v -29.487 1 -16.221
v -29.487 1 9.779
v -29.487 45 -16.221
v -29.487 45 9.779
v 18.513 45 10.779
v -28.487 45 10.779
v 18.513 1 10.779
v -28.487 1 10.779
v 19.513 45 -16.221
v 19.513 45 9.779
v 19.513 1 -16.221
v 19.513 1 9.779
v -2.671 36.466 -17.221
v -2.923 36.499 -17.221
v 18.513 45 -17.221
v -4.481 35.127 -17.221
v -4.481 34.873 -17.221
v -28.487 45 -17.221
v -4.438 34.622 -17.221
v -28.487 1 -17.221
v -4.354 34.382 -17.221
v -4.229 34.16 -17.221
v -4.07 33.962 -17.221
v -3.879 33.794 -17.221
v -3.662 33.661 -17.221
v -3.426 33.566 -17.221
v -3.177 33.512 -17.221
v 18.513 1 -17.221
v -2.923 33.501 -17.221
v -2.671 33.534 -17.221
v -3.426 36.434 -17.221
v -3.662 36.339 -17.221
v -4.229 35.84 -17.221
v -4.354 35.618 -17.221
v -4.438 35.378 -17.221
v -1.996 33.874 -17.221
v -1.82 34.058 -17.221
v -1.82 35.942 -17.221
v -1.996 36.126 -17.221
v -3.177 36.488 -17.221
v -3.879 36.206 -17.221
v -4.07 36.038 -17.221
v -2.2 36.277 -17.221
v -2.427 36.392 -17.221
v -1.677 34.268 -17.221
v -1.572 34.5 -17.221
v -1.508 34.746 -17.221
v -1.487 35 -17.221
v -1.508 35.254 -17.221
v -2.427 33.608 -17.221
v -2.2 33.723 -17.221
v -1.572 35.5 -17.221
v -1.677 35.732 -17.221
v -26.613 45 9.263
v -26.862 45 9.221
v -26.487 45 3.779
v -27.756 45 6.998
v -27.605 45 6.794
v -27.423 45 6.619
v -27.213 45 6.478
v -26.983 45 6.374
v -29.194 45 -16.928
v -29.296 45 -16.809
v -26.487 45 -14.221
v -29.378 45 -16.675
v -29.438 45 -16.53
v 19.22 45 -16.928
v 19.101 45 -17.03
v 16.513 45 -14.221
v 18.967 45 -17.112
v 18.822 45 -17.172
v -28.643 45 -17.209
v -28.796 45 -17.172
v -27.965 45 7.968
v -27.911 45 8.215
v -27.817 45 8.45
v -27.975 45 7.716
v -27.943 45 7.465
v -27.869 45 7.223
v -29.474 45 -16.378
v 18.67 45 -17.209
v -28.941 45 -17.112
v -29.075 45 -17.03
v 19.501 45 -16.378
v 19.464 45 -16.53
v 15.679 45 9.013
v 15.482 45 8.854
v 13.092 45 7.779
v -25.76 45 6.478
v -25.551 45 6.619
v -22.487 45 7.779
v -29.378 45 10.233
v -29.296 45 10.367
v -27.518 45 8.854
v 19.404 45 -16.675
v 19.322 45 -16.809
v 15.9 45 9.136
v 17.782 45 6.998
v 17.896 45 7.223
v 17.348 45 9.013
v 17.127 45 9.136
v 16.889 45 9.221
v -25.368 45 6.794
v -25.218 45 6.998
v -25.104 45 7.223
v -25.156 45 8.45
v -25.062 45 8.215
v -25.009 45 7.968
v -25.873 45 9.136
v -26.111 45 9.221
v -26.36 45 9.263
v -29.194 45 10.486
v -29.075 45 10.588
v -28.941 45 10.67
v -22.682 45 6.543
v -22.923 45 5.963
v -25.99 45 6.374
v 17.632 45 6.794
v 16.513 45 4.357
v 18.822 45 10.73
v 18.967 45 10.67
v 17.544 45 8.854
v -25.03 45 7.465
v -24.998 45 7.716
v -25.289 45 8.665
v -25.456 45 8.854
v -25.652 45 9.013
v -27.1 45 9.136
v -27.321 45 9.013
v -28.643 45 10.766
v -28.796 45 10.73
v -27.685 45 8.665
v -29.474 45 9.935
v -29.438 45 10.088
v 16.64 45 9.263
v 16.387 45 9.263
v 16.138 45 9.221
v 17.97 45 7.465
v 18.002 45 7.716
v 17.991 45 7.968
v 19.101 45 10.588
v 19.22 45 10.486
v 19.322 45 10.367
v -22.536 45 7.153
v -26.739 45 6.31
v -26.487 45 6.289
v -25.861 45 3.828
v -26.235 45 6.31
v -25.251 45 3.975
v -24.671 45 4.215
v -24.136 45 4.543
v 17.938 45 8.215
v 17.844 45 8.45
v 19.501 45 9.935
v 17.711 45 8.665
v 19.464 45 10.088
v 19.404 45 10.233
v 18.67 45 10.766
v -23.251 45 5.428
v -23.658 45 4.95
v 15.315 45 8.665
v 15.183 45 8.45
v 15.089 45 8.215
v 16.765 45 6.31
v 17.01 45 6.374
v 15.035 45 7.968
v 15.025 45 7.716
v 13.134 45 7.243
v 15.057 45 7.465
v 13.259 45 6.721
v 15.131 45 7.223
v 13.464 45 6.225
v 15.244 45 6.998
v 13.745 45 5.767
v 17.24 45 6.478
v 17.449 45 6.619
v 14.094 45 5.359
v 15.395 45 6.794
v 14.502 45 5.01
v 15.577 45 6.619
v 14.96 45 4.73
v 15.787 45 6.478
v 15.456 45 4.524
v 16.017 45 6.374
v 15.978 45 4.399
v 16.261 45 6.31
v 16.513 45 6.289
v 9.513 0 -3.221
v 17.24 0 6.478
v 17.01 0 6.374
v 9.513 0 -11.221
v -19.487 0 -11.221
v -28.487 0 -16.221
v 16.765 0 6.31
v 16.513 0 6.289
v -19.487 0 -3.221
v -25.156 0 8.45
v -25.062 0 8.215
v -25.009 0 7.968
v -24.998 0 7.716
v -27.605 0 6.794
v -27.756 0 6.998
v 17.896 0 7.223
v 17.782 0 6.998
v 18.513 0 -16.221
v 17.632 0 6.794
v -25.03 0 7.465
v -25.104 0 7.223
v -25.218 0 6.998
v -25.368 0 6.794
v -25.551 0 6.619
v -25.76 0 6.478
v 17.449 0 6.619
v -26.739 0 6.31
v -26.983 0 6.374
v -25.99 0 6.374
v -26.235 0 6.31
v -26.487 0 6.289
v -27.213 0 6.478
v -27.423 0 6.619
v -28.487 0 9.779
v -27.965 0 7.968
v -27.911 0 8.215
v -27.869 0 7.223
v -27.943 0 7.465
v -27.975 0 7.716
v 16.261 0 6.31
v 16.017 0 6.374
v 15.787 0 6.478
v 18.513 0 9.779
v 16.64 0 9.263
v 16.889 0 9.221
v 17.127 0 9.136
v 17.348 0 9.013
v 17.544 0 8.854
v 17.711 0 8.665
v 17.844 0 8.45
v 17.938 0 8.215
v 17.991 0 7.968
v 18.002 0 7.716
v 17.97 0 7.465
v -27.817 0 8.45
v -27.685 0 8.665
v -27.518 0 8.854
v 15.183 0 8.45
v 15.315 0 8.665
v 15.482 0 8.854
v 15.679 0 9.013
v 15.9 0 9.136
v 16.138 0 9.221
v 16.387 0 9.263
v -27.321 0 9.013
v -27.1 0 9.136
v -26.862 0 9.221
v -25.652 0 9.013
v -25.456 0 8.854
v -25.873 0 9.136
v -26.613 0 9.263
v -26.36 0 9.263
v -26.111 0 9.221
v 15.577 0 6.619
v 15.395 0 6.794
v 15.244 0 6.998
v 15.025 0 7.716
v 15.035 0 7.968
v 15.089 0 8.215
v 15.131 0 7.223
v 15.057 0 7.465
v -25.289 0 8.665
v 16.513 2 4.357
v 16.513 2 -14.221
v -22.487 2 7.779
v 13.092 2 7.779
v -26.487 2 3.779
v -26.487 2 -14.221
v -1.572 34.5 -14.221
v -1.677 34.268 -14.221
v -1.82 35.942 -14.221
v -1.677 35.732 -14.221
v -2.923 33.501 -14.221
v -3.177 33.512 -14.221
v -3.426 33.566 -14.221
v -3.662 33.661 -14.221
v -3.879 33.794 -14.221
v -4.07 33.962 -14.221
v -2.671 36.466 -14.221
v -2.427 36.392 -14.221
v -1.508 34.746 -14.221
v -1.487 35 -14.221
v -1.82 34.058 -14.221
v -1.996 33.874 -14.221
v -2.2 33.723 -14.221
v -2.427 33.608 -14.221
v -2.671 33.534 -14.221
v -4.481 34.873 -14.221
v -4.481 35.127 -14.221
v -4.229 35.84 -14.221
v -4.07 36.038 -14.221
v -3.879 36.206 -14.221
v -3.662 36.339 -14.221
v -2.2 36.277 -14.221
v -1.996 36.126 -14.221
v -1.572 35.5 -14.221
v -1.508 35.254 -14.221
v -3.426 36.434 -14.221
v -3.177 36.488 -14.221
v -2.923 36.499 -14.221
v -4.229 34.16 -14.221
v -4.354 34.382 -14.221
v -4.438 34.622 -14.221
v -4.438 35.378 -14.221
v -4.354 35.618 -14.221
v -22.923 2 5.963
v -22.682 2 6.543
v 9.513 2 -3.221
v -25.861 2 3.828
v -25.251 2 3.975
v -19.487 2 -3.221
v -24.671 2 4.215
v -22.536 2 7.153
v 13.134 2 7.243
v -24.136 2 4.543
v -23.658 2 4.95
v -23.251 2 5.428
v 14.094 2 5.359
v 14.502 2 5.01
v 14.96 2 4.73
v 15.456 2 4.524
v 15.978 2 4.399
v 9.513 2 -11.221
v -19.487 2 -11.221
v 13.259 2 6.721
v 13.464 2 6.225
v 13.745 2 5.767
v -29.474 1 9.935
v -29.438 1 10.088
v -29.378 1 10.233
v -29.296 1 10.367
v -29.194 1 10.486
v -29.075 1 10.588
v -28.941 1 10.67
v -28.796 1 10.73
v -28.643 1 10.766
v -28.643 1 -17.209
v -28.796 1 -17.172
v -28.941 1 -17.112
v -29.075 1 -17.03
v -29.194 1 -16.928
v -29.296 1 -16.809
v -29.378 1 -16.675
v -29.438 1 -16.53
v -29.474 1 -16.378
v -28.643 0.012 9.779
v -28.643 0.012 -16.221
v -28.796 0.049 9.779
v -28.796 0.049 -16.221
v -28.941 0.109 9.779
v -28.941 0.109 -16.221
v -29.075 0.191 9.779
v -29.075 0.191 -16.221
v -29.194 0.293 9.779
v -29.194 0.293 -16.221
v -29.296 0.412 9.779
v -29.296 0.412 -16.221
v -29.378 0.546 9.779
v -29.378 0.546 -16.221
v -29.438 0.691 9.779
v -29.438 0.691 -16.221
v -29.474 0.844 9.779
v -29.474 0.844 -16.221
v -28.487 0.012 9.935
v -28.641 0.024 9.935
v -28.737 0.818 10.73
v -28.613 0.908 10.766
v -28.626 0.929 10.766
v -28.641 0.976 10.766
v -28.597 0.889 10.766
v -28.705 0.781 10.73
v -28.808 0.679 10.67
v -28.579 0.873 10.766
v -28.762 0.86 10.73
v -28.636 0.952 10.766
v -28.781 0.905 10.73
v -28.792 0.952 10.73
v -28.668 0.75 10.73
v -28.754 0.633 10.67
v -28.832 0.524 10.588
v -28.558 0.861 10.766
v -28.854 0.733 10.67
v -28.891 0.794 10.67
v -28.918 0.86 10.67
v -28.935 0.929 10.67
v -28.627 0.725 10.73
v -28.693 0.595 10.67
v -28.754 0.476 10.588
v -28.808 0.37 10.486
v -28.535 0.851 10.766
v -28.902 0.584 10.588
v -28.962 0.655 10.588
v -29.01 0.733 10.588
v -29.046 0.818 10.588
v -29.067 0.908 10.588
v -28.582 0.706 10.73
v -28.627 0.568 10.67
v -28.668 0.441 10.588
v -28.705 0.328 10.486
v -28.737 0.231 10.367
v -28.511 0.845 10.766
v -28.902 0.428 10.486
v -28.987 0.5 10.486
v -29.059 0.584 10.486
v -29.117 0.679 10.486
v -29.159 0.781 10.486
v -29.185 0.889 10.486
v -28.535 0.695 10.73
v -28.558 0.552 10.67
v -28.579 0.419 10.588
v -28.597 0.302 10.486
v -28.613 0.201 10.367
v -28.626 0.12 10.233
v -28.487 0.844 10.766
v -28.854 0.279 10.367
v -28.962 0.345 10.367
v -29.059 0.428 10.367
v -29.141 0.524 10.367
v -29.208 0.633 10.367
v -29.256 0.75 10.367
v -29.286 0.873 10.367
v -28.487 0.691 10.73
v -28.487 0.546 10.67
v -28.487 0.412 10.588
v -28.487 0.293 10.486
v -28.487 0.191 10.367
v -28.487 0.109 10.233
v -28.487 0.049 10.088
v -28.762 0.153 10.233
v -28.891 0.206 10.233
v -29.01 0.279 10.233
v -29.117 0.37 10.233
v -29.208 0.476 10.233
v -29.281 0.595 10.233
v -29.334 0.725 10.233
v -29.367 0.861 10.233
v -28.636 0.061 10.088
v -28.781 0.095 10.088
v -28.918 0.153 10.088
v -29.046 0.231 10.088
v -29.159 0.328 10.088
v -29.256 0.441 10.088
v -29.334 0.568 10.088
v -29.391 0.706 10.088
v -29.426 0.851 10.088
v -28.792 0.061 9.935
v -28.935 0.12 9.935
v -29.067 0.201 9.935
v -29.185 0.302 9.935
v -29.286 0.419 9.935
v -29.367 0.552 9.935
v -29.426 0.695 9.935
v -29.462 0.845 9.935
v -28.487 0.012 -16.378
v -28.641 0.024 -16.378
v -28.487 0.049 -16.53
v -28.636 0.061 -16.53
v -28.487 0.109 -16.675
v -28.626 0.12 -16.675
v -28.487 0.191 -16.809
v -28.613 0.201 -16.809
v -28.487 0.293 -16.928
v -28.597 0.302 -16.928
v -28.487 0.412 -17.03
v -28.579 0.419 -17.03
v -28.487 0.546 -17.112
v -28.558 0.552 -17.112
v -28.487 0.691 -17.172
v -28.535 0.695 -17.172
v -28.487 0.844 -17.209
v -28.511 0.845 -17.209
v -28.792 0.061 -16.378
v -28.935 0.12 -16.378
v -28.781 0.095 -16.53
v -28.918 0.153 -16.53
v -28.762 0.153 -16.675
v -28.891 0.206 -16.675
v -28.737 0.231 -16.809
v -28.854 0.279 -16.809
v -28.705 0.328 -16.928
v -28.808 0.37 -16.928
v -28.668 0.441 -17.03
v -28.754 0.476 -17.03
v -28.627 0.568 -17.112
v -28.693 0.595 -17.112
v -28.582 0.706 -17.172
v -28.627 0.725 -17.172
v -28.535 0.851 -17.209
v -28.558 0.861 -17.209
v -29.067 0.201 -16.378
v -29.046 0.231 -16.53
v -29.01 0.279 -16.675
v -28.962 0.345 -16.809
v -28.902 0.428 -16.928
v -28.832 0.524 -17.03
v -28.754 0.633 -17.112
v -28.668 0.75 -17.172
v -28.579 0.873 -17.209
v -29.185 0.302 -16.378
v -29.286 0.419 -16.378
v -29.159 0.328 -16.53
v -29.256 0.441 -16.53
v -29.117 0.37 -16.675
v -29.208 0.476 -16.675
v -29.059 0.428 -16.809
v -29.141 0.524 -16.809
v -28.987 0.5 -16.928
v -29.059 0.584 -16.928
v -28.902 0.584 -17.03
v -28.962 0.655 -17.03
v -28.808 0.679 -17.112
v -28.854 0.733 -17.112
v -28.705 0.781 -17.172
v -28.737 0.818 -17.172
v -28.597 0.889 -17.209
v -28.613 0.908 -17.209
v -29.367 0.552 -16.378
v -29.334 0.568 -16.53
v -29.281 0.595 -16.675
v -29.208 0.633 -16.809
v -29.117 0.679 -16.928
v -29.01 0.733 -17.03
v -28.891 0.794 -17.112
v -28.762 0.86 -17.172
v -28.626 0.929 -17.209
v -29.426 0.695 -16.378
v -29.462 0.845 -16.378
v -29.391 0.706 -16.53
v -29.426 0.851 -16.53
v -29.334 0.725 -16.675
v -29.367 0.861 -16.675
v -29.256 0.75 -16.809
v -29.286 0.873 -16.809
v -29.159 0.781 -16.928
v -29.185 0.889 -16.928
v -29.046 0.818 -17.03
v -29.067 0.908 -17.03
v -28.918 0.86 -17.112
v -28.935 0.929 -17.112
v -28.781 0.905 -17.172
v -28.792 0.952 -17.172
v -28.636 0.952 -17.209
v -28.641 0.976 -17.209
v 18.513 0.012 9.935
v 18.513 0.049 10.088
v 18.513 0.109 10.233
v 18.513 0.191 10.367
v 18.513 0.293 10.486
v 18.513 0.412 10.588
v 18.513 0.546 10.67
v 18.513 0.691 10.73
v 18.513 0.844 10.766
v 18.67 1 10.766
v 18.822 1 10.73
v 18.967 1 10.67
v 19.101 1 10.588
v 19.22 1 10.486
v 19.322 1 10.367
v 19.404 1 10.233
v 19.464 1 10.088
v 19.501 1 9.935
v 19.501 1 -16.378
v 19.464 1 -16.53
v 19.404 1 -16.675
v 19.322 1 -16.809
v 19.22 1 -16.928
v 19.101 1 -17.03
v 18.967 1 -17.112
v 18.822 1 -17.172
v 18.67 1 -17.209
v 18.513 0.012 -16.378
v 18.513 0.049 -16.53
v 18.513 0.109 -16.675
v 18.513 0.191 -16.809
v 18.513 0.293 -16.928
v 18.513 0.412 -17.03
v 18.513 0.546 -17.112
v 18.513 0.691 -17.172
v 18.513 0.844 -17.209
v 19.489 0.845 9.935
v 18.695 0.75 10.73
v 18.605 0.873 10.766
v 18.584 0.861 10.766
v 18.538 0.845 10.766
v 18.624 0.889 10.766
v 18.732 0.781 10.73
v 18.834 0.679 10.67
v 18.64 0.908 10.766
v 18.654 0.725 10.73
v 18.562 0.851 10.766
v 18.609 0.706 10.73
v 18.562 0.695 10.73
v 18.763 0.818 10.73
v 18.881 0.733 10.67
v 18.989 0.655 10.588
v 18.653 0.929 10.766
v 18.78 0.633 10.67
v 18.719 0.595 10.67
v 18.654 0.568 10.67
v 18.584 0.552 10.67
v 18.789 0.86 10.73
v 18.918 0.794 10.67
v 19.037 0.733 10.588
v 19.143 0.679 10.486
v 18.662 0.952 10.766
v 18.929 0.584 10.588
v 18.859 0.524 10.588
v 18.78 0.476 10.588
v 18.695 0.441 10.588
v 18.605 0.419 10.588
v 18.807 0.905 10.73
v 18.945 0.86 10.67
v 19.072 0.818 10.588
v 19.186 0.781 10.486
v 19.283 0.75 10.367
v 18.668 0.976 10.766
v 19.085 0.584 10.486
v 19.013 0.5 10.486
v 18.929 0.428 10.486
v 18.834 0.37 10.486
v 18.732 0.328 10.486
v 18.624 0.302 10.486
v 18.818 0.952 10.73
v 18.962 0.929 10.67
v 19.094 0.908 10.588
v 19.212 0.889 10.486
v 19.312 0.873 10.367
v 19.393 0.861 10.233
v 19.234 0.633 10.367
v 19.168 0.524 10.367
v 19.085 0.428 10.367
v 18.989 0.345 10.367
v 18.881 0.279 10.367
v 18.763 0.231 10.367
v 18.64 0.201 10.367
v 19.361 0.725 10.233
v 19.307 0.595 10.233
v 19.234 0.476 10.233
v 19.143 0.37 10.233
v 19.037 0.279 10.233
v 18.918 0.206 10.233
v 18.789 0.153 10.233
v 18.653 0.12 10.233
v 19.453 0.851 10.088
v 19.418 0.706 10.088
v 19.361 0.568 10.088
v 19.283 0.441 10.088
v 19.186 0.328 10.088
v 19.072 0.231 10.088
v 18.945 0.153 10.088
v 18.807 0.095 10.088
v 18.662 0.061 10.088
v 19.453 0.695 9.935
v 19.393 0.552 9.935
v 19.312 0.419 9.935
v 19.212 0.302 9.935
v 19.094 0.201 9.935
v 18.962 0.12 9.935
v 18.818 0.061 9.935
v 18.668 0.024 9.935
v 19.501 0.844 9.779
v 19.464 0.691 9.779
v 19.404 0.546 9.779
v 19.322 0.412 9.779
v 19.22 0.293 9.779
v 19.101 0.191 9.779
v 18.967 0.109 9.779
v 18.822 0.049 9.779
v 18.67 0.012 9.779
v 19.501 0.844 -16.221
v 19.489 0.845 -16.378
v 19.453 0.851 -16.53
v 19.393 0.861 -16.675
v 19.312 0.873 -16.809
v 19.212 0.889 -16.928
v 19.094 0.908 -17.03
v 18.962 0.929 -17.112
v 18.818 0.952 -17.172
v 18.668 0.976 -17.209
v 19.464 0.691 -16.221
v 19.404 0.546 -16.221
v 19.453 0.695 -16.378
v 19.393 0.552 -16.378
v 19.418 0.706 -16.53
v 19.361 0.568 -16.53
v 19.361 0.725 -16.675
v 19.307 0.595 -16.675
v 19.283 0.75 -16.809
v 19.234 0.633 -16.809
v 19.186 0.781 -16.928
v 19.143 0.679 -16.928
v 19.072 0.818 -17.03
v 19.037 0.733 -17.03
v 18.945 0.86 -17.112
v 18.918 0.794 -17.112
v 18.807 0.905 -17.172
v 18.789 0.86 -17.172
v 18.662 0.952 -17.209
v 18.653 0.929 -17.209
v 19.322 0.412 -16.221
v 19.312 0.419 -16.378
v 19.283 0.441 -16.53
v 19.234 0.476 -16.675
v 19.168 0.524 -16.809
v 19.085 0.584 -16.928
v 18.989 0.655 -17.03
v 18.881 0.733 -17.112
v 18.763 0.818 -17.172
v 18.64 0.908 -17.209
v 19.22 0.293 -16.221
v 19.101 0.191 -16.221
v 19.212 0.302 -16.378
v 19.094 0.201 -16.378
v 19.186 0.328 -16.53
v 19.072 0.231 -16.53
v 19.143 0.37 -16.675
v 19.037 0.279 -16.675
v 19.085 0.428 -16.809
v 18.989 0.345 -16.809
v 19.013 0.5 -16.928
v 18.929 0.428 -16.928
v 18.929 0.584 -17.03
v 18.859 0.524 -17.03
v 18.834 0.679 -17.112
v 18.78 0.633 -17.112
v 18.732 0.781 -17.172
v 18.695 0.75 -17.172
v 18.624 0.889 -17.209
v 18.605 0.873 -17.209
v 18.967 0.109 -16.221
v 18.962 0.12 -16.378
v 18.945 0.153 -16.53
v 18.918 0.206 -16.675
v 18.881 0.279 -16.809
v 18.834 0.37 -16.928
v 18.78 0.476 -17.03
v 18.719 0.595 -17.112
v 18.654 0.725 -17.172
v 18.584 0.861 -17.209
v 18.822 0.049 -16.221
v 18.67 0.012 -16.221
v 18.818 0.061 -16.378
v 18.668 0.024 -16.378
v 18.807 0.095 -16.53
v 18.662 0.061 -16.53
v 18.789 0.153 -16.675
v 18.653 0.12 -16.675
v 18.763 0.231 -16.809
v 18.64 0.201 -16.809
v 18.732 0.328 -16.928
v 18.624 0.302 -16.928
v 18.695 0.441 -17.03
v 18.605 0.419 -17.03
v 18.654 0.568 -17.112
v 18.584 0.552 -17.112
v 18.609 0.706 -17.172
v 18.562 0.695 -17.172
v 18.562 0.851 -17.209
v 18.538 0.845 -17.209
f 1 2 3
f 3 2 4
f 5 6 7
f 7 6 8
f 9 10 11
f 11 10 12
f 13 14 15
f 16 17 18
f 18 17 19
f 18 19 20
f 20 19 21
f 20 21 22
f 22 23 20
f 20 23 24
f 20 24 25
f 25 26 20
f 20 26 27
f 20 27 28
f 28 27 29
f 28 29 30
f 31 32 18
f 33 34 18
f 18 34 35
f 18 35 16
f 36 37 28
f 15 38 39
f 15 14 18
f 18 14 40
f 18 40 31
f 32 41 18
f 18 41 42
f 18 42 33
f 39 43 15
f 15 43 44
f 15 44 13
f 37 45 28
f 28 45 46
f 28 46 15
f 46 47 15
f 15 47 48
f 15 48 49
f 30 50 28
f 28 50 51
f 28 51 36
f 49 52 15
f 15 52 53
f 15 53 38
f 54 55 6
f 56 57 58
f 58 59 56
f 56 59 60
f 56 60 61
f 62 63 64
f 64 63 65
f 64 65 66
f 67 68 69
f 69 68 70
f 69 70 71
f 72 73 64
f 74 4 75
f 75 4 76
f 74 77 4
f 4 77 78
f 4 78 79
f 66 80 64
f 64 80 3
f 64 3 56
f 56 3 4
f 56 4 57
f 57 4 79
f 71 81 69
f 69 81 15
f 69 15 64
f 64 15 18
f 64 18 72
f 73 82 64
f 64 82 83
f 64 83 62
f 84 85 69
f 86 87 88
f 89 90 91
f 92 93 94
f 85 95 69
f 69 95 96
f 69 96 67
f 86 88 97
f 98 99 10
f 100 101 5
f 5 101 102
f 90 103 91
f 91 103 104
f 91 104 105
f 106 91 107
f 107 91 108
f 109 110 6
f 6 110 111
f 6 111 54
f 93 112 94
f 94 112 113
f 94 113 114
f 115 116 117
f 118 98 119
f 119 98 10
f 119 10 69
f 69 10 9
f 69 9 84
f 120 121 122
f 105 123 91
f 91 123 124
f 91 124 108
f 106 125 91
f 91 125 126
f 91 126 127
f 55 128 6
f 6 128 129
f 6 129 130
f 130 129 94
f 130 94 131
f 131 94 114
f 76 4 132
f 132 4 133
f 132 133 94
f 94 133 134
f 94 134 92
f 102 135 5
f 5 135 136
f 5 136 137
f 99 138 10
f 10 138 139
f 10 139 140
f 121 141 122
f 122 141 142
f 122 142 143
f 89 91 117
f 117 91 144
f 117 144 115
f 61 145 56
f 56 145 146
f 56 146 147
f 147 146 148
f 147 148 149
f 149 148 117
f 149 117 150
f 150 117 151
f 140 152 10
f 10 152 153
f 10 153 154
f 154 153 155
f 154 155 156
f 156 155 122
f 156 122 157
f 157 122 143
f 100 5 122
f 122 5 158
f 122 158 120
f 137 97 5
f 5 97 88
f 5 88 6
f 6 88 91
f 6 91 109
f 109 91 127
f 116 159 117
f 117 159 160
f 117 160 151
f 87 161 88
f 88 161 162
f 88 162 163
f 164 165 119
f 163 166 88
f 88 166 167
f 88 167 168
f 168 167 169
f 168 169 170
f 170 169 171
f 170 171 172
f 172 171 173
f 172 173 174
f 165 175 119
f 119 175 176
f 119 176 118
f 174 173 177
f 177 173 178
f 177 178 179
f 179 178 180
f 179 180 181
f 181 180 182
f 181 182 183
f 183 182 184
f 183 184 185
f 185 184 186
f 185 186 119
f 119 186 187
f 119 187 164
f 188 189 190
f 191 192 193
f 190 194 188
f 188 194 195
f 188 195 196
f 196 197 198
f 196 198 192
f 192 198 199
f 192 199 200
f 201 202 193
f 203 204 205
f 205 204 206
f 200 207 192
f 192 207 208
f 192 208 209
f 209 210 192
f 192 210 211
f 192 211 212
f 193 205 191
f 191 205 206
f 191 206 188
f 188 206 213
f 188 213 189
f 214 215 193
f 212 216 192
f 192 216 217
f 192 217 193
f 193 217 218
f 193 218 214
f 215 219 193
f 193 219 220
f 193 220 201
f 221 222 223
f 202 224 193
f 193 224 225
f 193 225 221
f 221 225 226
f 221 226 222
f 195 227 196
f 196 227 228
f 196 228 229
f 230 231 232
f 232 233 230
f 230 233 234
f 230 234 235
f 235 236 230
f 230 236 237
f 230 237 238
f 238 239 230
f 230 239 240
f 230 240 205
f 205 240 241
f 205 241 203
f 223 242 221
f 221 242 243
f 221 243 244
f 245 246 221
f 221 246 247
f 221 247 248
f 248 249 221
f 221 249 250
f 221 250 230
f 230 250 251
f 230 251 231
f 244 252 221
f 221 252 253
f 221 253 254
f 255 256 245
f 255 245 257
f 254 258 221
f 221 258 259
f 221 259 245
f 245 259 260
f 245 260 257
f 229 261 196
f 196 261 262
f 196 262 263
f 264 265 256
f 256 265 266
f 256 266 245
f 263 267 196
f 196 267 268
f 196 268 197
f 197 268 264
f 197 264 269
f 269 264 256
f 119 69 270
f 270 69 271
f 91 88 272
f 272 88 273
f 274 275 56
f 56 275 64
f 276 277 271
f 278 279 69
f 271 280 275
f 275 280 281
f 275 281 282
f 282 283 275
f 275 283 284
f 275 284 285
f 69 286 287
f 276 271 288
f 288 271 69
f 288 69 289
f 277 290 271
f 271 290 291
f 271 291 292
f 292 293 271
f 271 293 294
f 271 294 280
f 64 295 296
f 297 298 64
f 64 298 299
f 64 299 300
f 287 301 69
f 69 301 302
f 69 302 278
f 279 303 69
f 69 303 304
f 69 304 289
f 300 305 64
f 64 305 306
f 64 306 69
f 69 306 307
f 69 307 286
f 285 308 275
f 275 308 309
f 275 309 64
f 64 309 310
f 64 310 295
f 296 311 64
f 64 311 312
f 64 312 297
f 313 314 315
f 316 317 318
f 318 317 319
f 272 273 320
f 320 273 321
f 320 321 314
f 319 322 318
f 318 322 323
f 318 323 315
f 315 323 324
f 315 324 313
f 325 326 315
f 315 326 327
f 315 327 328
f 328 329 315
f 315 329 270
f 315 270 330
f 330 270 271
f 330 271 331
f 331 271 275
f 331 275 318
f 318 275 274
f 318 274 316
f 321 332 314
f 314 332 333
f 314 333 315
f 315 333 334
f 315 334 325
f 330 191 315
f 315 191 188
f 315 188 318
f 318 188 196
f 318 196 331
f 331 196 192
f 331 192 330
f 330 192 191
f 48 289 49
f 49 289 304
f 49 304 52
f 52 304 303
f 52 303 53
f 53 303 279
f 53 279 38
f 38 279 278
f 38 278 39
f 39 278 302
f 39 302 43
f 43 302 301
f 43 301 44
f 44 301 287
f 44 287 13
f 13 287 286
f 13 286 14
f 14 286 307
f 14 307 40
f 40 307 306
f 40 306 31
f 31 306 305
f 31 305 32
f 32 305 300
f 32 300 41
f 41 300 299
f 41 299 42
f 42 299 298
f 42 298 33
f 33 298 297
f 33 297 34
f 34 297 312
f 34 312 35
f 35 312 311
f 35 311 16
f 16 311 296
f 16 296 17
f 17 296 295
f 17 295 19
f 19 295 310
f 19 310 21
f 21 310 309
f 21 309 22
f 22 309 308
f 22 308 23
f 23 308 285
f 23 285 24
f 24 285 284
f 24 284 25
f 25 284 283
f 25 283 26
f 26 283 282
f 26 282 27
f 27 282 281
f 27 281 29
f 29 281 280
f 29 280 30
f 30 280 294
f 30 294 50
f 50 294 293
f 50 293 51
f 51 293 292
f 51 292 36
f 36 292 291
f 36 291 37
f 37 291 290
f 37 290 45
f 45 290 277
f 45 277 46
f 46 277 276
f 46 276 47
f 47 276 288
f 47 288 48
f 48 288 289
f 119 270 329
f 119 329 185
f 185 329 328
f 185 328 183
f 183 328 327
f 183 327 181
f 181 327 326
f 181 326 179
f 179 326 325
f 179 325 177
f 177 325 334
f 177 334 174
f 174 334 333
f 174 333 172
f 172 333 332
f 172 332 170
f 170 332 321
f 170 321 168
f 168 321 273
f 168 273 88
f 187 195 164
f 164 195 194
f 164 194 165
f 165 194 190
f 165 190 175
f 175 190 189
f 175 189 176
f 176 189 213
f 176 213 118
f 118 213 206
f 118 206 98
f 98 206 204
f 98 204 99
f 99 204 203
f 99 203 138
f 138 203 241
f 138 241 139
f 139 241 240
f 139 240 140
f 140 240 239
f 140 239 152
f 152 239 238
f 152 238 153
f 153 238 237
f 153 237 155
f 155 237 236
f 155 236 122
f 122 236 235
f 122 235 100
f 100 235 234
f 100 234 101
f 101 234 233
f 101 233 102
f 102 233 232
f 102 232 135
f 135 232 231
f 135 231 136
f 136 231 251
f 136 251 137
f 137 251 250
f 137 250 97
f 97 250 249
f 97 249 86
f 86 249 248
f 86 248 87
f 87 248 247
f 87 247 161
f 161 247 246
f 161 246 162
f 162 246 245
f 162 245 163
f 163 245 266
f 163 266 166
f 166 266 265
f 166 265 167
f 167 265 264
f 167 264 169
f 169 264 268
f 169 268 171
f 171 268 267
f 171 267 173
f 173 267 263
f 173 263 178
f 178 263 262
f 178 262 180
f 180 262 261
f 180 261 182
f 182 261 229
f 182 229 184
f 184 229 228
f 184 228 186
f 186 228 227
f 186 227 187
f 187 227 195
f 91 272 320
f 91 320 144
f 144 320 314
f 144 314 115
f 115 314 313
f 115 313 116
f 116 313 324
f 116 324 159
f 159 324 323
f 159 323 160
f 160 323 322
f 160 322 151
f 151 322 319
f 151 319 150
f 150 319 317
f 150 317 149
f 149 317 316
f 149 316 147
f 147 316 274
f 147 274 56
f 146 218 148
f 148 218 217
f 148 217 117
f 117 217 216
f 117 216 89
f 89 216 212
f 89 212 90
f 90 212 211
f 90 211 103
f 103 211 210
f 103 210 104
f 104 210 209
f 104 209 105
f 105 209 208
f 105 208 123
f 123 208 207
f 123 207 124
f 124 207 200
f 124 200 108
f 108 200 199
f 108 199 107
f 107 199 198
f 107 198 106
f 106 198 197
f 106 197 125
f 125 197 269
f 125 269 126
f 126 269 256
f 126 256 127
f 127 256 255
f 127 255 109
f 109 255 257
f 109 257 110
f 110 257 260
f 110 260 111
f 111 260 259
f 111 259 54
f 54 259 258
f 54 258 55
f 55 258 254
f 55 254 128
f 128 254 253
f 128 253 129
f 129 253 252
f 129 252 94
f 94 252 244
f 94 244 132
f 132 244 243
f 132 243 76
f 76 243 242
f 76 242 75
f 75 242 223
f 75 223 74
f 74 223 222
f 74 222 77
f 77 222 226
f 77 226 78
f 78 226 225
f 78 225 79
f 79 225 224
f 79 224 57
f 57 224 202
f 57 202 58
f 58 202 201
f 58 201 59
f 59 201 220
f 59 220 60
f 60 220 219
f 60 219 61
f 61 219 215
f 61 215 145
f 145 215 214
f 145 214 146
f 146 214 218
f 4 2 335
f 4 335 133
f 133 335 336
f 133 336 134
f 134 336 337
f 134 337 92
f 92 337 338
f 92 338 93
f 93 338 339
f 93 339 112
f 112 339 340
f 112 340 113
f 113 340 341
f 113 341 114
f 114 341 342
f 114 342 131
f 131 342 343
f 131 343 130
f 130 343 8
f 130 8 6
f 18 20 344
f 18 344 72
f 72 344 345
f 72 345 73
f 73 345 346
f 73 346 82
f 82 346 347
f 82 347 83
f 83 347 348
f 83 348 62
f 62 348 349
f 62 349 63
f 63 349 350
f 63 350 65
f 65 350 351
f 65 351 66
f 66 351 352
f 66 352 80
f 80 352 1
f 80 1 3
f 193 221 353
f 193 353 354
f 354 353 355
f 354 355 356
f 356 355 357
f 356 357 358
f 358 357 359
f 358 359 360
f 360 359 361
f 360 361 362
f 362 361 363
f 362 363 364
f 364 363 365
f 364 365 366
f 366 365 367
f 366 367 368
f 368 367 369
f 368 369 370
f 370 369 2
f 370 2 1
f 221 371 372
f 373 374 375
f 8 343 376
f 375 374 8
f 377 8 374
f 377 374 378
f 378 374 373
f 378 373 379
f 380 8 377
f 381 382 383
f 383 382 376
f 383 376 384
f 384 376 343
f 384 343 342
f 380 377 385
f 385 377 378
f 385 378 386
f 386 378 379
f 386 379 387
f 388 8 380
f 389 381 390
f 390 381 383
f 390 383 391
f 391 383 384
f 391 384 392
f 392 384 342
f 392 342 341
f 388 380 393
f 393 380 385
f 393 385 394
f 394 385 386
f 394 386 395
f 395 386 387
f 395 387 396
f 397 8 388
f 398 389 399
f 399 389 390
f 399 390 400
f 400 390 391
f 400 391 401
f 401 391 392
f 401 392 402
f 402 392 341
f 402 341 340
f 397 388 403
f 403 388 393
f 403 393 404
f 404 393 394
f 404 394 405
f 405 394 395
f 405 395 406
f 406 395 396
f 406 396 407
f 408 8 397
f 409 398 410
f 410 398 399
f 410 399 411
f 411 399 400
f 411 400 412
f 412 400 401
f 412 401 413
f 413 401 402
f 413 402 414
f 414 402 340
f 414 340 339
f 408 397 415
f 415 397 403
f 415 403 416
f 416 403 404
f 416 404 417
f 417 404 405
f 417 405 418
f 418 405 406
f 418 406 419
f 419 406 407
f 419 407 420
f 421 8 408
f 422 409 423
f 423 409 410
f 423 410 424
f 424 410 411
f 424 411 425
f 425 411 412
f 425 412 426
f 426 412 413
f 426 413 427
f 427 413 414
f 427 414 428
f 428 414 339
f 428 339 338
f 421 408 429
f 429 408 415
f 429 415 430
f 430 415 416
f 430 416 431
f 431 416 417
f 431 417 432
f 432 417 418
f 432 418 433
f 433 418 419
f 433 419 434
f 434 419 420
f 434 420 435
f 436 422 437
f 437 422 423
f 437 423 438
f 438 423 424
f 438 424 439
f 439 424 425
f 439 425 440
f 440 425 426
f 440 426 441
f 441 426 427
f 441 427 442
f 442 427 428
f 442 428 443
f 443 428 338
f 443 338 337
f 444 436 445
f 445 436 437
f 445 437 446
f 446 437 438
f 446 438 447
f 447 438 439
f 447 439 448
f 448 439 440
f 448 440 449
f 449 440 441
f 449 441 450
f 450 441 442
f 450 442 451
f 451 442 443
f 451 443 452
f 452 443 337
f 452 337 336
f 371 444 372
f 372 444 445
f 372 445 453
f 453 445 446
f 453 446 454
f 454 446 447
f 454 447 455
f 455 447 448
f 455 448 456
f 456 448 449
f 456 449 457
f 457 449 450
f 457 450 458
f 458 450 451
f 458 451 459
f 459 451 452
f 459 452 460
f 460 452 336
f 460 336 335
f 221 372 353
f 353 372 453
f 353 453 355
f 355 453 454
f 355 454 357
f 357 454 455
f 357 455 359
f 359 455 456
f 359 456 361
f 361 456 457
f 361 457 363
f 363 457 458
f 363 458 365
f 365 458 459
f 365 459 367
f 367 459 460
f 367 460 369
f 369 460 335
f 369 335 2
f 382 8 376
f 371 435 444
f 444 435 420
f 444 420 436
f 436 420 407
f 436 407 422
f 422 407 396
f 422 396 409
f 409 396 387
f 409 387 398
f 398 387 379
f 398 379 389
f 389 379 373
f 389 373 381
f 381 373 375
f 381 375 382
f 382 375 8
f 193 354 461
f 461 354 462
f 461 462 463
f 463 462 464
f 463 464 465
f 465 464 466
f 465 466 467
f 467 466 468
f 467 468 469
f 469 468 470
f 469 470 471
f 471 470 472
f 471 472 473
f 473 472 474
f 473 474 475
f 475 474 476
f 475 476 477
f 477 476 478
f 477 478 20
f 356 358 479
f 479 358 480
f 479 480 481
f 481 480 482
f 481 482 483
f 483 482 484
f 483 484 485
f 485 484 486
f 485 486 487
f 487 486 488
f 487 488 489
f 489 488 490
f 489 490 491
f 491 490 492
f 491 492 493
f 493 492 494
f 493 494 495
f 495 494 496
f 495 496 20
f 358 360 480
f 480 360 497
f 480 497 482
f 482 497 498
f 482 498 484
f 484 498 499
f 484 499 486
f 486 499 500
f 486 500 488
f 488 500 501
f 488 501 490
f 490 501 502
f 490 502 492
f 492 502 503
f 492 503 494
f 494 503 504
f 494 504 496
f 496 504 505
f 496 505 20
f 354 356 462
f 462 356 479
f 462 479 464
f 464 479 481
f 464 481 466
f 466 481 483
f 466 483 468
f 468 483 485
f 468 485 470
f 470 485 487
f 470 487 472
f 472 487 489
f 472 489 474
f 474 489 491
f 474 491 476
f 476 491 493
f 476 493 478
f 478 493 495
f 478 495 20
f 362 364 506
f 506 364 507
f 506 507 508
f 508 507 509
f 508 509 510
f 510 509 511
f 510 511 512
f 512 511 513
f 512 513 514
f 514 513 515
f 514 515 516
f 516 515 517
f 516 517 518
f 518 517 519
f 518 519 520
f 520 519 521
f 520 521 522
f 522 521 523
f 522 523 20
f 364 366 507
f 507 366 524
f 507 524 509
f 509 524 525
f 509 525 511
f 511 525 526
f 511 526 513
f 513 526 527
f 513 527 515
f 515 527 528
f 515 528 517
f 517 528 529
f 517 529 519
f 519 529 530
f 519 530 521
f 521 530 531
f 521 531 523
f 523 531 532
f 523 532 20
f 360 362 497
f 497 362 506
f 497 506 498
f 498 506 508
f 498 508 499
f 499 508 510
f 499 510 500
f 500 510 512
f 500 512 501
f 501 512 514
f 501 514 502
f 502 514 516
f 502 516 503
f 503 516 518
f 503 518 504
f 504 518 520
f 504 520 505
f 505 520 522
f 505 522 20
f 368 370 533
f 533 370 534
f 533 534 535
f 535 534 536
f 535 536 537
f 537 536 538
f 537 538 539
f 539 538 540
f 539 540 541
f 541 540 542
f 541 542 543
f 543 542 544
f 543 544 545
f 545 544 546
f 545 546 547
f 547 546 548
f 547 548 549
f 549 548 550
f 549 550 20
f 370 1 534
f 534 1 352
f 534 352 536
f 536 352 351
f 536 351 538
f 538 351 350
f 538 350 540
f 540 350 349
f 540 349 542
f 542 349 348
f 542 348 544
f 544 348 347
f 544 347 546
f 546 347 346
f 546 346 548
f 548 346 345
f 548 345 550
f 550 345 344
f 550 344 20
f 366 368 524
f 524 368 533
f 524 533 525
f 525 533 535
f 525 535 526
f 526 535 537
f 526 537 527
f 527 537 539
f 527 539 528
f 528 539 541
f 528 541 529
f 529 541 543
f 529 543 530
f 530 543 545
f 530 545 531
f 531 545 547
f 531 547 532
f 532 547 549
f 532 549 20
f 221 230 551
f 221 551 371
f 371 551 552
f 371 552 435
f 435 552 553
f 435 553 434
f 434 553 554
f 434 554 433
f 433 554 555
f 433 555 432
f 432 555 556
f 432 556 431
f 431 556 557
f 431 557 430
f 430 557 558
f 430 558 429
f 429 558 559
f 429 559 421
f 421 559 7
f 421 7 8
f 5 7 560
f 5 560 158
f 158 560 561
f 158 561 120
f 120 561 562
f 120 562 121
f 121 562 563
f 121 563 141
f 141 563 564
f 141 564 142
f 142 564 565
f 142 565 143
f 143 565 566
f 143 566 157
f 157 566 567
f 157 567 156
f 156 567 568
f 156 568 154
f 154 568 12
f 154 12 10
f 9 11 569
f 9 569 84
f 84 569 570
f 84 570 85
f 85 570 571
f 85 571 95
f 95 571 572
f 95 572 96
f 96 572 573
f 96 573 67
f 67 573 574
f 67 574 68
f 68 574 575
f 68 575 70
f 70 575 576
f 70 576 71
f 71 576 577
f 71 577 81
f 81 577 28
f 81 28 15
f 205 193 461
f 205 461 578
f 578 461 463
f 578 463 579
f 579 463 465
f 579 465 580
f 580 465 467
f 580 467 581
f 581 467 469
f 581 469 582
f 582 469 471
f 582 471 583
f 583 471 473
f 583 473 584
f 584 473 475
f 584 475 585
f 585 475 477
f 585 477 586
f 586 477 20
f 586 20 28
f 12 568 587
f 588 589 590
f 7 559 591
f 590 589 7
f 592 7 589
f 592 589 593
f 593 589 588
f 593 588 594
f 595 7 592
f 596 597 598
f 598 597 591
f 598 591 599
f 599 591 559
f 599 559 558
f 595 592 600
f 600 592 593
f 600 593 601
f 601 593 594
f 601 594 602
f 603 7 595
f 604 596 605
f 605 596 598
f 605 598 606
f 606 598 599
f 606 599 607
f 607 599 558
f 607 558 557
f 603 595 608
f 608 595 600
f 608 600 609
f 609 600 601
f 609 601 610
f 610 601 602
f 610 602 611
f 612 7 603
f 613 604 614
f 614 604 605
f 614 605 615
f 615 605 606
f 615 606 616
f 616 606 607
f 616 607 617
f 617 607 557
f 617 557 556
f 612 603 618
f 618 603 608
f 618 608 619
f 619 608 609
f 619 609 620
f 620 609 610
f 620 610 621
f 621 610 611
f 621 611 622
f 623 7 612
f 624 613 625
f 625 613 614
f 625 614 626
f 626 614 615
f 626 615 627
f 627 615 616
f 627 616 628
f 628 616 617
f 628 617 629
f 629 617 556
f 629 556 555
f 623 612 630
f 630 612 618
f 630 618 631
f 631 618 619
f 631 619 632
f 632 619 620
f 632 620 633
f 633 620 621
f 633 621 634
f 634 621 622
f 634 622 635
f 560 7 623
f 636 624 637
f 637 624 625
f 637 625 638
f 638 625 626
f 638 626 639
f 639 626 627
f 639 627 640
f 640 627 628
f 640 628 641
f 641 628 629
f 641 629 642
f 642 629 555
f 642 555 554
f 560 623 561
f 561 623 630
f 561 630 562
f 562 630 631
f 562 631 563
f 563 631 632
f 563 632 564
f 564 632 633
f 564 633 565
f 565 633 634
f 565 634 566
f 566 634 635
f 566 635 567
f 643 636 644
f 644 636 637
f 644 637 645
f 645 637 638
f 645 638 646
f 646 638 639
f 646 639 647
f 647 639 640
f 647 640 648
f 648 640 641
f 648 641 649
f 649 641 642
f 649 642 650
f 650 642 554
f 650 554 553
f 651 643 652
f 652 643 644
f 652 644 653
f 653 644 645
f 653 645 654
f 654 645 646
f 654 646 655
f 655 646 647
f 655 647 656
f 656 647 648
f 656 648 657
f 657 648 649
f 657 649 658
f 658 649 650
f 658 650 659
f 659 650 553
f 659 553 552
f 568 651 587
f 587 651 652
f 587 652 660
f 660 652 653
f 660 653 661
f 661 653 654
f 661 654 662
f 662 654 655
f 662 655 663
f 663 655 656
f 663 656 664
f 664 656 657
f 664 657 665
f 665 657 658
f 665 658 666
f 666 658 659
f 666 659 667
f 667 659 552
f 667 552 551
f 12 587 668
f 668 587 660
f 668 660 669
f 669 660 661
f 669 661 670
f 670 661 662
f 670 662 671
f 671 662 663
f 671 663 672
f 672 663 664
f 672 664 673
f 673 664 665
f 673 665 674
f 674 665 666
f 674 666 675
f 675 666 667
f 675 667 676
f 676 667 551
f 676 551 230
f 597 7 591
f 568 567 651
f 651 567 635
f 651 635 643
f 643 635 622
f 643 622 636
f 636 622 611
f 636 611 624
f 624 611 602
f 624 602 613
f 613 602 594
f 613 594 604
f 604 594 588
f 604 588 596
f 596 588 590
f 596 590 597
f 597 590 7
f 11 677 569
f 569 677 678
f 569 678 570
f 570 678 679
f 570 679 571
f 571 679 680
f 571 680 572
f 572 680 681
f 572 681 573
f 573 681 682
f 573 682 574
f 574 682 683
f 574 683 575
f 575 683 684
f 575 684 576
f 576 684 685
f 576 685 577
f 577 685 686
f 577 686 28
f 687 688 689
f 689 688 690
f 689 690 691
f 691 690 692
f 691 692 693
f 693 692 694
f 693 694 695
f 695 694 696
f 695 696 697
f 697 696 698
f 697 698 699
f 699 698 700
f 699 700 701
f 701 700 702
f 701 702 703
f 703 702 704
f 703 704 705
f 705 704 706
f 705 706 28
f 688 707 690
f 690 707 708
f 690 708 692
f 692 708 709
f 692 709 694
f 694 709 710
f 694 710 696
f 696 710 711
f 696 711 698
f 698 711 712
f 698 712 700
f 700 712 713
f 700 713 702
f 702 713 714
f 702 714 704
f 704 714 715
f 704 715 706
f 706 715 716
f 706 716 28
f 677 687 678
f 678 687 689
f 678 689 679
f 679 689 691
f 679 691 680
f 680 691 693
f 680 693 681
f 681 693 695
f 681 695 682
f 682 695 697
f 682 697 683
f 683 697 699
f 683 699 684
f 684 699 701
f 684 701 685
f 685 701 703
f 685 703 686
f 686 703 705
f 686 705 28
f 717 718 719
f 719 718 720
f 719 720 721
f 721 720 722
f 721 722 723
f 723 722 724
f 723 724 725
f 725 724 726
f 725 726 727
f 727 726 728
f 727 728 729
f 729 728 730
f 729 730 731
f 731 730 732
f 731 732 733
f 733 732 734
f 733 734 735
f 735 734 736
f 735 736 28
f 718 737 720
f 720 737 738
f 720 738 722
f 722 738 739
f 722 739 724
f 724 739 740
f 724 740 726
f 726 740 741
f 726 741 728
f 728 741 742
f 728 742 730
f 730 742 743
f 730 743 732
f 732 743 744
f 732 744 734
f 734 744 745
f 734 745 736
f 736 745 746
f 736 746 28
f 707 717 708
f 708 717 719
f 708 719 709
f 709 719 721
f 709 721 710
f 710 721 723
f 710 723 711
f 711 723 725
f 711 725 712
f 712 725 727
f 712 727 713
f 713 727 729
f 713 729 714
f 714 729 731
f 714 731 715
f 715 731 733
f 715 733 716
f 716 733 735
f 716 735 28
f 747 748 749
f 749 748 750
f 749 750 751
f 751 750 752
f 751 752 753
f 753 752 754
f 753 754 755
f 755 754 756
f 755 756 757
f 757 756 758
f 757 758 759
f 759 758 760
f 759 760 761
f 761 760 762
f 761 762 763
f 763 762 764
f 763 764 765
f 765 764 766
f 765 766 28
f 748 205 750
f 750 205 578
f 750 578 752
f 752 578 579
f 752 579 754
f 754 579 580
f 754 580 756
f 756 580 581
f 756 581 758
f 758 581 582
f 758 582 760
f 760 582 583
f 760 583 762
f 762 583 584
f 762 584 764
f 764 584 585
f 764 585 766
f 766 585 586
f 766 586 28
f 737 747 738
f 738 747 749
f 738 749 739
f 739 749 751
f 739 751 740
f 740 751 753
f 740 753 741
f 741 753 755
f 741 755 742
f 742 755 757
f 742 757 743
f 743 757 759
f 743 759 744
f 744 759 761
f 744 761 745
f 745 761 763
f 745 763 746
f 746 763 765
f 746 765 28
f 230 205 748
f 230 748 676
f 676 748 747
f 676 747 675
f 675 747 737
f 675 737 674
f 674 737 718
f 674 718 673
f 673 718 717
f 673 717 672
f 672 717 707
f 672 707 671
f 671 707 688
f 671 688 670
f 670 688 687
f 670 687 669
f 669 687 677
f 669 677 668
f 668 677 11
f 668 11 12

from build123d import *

# Parameters (mm, degrees)
SKETCH1_W           = 49
SKETCH1_H           = 28
BOSS_EXTRUDE1_DEPTH = 45
SKETCH2_W           = 43
SKETCH2_H           = 22
CUT_EXTRUDE1_DEPTH  = 43
SKETCH3_W           = 29
SKETCH3_H           = 8
CUT_EXTRUDE2_DEPTH  = 3
SKETCH4_R           = 1.5
CUT_EXTRUDE3_DEPTH  = 3
BOSS_EXTRUDE2_DEPTH = 45
SKETCH6_R           = 1.49
CUT_EXTRUDE4_DEPTH  = 45
BOSS_EXTRUDE3_DEPTH = 45
SKETCH8_R           = 1.49
CUT_EXTRUDE5_DEPTH  = 45
FILLET2_R           = 1


with BuildPart() as part:
    # Sketch1 → Boss-Extrude1 (new body)
    with BuildSketch(Plane(origin=(0, 0, 0), x_dir=(1, 0, 0), z_dir=(0, 1, 0))):
        with Locations((-4.986725664, 3.221238938)):
            Rectangle(SKETCH1_W, SKETCH1_H)
    extrude(amount=BOSS_EXTRUDE1_DEPTH)

    # Sketch2 → Cut-Extrude1 (cut)
    with BuildSketch(Plane(origin=(0, 45, 0), x_dir=(1, 0, 0), z_dir=(0, 1, 0))):
        with Locations((-4.986725664, 3.221238938)):
            Rectangle(SKETCH2_W, SKETCH2_H)
    extrude(amount=-CUT_EXTRUDE1_DEPTH, mode=Mode.SUBTRACT)

    # Sketch3 → Cut-Extrude2 (cut)
    with BuildSketch(Plane(origin=(0, 2, 0), x_dir=(1, 0, 0), z_dir=(0, 1, 0))):
        with Locations((-4.986725664, 7.221238938)):
            Rectangle(SKETCH3_W, SKETCH3_H)
    extrude(amount=-CUT_EXTRUDE2_DEPTH, mode=Mode.SUBTRACT)

    # Sketch4 → Cut-Extrude3 (cut)
    with BuildSketch(Plane.XY.offset(-14.221238938)):
        with Locations((-2.986725664, 35)):
            Circle(SKETCH4_R)
    extrude(amount=-CUT_EXTRUDE3_DEPTH, mode=Mode.SUBTRACT)

    # Sketch5 → Boss-Extrude2 (add)
    with BuildSketch(Plane.XZ):
        with BuildLine():
            Line((14.867523025, 10.778761062), (19.513274336, 10.778761062))
            Line((19.513274336, 10.778761062), (19.513274336, 6.133009751))
            ThreePointArc((19.513274336, 6.133009751), (14.093718863, 5.359205589), (14.867523025, 10.778761062))
        make_face()
    extrude(amount=-BOSS_EXTRUDE2_DEPTH)

    # Sketch6 → Cut-Extrude4 (cut)
    with BuildSketch(Plane.XZ):
        with Locations((16.513274336, 7.778761062)):
            Circle(SKETCH6_R)
    extrude(amount=-CUT_EXTRUDE4_DEPTH, mode=Mode.SUBTRACT)

    # Sketch7 → Boss-Extrude3 (add)
    with BuildSketch(Plane.XZ):
        with BuildLine():
            Line((-29.486725664, 5.133009751), (-29.486725664, 10.778761062))
            Line((-29.486725664, 10.778761062), (-23.840974353, 10.778761062))
            ThreePointArc((-23.840974353, 10.778761062), (-23.658298539, 4.950333937), (-29.486725664, 5.133009751))
        make_face()
    extrude(amount=-BOSS_EXTRUDE3_DEPTH)

    # Sketch8 → Cut-Extrude5 (cut)
    with BuildSketch(Plane.XZ):
        with Locations((-26.486725664, 7.778761062)):
            Circle(SKETCH8_R)
    extrude(amount=-CUT_EXTRUDE5_DEPTH, mode=Mode.SUBTRACT)

    # Fillet2
    fillet2_edges = [part.edges().sort_by_distance(p)[0] for p in [
        (-4.986725664, 0, -17.221238938),
        (19.513274336, 0, -3.221238938),
        (-4.986725664, 0, 10.778761062),
        (-29.486725664, 0, -3.221238938),
        (-29.486725664, 22.5, -17.221238938),
        (19.513274336, 22.5, -17.221238938),
        (19.513274336, 22.5, 10.778761062),
        (-29.486725664, 22.5, 10.778761062),
    ]]
    fillet(fillet2_edges, radius=FILLET2_R)


solid = part.part
